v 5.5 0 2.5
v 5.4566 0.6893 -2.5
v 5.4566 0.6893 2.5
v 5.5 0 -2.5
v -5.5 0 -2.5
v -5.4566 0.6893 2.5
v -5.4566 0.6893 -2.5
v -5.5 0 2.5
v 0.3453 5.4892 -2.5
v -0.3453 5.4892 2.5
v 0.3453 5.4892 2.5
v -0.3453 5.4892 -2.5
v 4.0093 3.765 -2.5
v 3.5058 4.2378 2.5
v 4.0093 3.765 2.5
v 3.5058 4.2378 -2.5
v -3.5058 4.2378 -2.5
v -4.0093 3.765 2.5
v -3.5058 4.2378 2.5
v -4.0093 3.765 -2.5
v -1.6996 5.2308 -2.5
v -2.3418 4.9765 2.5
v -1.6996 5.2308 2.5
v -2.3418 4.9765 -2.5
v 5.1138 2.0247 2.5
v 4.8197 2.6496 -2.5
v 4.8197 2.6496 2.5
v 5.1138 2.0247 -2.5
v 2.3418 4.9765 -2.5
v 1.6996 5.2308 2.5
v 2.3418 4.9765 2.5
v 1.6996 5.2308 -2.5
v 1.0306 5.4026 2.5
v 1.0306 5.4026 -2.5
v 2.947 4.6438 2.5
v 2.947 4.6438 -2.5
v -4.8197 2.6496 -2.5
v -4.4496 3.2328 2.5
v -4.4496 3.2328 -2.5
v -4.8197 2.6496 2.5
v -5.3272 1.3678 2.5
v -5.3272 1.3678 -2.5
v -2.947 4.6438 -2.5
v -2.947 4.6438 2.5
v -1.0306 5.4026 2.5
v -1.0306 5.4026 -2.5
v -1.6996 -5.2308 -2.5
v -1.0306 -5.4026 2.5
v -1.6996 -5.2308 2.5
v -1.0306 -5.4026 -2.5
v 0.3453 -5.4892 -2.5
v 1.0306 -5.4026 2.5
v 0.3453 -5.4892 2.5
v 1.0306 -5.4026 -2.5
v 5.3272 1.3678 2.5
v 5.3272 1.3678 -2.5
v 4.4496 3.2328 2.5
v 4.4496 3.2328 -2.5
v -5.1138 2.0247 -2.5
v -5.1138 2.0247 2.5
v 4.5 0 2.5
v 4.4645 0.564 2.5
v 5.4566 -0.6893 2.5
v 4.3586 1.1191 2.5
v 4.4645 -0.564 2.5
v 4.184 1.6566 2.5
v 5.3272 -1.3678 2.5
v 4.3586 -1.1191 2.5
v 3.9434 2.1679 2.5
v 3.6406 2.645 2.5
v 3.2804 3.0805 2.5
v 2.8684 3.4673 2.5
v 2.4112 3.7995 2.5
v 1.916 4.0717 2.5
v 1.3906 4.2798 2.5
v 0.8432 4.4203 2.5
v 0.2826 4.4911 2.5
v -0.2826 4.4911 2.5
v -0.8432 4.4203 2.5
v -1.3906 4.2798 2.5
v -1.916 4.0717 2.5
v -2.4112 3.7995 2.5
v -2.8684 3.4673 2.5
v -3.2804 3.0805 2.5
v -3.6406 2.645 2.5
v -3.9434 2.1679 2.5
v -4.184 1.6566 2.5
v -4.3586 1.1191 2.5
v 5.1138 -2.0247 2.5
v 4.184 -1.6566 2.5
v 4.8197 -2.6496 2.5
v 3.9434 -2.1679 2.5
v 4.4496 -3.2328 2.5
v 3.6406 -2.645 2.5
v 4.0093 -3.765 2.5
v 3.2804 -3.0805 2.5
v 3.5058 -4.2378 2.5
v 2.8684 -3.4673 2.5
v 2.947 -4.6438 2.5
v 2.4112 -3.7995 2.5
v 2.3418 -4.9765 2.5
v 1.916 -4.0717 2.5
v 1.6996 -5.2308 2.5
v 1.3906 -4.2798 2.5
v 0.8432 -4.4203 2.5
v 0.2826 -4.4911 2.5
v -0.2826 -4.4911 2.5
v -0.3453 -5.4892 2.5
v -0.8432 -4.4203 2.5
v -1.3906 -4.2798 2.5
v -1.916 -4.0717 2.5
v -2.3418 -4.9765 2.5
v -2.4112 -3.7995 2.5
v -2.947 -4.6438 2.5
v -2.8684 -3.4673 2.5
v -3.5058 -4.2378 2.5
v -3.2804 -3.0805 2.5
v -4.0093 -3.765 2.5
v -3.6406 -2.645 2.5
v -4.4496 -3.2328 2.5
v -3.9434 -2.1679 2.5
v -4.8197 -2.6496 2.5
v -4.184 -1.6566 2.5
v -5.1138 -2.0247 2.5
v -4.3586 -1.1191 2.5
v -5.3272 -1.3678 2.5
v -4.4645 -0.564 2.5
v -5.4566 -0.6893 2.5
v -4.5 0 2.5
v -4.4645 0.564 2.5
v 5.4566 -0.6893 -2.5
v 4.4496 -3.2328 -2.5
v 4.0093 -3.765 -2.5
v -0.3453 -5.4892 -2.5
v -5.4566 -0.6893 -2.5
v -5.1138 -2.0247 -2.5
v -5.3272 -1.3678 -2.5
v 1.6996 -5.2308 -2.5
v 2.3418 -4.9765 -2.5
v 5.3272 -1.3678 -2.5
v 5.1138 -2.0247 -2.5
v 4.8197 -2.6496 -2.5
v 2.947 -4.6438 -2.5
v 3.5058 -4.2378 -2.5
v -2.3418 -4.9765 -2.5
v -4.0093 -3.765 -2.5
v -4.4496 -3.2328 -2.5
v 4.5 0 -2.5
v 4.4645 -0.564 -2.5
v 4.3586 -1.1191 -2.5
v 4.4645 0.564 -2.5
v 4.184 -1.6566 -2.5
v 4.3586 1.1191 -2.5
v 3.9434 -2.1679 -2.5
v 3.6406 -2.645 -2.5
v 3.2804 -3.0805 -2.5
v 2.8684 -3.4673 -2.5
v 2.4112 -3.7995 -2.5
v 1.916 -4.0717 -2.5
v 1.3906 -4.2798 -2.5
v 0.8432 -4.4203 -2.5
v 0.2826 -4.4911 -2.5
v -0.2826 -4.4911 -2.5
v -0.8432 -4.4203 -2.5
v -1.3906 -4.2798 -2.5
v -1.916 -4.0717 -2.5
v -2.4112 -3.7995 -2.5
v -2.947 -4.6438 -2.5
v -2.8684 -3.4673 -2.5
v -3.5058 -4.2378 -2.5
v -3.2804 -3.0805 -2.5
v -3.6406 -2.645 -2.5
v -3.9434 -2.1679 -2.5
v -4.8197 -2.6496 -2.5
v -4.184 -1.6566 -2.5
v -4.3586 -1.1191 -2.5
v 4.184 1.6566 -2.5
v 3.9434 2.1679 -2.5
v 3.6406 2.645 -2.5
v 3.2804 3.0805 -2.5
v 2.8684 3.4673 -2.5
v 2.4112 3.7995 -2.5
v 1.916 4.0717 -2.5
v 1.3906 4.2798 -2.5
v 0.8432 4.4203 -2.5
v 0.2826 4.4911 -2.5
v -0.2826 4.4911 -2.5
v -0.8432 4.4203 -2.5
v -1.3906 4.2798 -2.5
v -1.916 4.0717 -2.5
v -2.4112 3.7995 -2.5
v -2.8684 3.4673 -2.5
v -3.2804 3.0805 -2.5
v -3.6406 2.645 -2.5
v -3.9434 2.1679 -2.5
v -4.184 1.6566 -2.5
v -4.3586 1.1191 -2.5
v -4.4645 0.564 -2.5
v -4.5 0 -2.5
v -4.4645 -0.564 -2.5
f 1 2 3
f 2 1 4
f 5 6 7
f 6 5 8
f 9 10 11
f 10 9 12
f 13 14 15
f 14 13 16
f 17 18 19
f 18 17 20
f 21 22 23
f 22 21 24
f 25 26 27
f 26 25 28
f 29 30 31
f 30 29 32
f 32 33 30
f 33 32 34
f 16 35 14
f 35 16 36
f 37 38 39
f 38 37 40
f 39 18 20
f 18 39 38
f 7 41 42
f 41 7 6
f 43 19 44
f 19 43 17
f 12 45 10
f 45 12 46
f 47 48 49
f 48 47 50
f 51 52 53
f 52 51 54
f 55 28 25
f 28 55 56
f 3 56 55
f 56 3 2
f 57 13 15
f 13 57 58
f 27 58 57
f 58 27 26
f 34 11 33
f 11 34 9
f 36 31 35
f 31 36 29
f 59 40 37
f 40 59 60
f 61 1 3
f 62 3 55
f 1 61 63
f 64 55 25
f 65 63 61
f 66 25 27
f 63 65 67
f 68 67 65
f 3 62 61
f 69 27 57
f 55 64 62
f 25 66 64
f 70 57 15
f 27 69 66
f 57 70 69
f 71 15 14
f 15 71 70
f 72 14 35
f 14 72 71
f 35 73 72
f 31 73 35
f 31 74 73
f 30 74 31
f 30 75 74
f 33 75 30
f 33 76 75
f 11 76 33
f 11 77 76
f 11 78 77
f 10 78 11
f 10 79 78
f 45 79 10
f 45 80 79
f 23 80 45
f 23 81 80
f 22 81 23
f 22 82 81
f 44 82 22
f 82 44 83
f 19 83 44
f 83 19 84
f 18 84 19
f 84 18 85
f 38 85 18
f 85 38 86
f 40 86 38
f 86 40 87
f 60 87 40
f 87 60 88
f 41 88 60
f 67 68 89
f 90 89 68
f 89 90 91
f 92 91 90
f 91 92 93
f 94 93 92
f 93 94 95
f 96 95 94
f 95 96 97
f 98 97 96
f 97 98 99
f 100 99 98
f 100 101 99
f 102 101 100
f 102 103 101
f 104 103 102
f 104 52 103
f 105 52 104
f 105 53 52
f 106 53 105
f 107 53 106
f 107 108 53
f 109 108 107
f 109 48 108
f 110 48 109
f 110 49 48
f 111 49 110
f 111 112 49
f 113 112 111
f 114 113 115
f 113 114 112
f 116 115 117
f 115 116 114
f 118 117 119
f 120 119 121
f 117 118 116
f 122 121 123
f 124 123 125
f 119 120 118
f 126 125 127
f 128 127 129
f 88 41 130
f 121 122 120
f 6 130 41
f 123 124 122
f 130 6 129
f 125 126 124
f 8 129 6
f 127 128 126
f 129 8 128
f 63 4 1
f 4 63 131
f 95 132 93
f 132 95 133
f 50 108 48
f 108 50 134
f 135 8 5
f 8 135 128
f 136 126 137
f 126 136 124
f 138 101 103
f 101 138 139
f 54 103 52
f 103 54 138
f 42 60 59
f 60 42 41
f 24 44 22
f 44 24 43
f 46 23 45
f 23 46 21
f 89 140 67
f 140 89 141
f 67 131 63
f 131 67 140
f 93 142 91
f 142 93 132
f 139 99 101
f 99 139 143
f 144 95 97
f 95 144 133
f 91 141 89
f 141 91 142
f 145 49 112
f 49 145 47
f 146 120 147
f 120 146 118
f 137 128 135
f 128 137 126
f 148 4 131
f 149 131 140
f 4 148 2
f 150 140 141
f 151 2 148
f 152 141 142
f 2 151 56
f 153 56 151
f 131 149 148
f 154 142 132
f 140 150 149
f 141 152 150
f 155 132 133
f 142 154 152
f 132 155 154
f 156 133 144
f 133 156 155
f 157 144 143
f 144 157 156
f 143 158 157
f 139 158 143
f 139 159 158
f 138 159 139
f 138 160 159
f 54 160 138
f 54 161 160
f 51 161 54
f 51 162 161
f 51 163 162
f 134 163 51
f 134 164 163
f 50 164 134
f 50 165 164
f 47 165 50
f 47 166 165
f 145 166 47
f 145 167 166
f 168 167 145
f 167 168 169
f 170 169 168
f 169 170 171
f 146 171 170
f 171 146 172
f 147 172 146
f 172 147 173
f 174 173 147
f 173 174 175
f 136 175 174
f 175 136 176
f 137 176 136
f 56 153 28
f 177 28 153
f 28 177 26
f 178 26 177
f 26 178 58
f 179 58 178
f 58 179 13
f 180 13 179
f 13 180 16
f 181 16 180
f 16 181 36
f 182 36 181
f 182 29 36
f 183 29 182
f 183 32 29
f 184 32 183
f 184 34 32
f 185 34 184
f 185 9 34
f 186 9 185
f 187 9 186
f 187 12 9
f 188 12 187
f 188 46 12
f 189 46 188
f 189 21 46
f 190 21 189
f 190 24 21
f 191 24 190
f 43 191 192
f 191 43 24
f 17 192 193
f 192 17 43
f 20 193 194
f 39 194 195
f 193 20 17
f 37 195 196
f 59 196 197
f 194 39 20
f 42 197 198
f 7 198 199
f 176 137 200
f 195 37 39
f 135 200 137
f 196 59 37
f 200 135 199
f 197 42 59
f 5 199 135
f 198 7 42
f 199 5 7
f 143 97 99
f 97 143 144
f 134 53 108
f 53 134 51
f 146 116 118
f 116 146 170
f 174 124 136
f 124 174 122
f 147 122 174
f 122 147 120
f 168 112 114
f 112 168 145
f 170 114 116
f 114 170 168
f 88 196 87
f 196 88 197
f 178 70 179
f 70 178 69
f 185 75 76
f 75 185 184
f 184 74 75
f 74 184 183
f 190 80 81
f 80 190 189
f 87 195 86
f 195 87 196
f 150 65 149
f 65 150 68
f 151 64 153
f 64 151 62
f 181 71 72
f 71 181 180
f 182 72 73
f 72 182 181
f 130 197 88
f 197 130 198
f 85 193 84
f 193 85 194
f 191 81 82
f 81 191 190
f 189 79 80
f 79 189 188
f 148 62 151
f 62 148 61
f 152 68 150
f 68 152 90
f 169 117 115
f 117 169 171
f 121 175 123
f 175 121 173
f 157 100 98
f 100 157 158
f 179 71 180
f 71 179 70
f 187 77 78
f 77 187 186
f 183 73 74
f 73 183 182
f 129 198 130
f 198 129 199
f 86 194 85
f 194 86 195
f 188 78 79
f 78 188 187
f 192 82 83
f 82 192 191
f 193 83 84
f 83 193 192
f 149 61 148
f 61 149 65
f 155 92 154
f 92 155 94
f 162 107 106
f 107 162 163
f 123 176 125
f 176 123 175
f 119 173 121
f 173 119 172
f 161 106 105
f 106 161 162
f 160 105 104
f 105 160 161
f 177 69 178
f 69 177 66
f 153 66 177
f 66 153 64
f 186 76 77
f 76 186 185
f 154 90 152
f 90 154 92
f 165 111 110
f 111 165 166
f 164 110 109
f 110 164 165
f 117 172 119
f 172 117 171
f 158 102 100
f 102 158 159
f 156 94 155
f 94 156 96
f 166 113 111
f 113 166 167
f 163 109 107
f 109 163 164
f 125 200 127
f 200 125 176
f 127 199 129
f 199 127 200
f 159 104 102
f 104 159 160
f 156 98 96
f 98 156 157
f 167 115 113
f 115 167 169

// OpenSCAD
$fn = 50;


difference() {
	union() {
		translate(v = [0, 0, -2.5000000000]) {
			cylinder(h = 5, r = 5.5000000000);
		}
	}
	union() {
		translate(v = [0, 0, -100.0000000000]) {
			cylinder(h = 200, r = 4.5000000000);
		}
	}
}
